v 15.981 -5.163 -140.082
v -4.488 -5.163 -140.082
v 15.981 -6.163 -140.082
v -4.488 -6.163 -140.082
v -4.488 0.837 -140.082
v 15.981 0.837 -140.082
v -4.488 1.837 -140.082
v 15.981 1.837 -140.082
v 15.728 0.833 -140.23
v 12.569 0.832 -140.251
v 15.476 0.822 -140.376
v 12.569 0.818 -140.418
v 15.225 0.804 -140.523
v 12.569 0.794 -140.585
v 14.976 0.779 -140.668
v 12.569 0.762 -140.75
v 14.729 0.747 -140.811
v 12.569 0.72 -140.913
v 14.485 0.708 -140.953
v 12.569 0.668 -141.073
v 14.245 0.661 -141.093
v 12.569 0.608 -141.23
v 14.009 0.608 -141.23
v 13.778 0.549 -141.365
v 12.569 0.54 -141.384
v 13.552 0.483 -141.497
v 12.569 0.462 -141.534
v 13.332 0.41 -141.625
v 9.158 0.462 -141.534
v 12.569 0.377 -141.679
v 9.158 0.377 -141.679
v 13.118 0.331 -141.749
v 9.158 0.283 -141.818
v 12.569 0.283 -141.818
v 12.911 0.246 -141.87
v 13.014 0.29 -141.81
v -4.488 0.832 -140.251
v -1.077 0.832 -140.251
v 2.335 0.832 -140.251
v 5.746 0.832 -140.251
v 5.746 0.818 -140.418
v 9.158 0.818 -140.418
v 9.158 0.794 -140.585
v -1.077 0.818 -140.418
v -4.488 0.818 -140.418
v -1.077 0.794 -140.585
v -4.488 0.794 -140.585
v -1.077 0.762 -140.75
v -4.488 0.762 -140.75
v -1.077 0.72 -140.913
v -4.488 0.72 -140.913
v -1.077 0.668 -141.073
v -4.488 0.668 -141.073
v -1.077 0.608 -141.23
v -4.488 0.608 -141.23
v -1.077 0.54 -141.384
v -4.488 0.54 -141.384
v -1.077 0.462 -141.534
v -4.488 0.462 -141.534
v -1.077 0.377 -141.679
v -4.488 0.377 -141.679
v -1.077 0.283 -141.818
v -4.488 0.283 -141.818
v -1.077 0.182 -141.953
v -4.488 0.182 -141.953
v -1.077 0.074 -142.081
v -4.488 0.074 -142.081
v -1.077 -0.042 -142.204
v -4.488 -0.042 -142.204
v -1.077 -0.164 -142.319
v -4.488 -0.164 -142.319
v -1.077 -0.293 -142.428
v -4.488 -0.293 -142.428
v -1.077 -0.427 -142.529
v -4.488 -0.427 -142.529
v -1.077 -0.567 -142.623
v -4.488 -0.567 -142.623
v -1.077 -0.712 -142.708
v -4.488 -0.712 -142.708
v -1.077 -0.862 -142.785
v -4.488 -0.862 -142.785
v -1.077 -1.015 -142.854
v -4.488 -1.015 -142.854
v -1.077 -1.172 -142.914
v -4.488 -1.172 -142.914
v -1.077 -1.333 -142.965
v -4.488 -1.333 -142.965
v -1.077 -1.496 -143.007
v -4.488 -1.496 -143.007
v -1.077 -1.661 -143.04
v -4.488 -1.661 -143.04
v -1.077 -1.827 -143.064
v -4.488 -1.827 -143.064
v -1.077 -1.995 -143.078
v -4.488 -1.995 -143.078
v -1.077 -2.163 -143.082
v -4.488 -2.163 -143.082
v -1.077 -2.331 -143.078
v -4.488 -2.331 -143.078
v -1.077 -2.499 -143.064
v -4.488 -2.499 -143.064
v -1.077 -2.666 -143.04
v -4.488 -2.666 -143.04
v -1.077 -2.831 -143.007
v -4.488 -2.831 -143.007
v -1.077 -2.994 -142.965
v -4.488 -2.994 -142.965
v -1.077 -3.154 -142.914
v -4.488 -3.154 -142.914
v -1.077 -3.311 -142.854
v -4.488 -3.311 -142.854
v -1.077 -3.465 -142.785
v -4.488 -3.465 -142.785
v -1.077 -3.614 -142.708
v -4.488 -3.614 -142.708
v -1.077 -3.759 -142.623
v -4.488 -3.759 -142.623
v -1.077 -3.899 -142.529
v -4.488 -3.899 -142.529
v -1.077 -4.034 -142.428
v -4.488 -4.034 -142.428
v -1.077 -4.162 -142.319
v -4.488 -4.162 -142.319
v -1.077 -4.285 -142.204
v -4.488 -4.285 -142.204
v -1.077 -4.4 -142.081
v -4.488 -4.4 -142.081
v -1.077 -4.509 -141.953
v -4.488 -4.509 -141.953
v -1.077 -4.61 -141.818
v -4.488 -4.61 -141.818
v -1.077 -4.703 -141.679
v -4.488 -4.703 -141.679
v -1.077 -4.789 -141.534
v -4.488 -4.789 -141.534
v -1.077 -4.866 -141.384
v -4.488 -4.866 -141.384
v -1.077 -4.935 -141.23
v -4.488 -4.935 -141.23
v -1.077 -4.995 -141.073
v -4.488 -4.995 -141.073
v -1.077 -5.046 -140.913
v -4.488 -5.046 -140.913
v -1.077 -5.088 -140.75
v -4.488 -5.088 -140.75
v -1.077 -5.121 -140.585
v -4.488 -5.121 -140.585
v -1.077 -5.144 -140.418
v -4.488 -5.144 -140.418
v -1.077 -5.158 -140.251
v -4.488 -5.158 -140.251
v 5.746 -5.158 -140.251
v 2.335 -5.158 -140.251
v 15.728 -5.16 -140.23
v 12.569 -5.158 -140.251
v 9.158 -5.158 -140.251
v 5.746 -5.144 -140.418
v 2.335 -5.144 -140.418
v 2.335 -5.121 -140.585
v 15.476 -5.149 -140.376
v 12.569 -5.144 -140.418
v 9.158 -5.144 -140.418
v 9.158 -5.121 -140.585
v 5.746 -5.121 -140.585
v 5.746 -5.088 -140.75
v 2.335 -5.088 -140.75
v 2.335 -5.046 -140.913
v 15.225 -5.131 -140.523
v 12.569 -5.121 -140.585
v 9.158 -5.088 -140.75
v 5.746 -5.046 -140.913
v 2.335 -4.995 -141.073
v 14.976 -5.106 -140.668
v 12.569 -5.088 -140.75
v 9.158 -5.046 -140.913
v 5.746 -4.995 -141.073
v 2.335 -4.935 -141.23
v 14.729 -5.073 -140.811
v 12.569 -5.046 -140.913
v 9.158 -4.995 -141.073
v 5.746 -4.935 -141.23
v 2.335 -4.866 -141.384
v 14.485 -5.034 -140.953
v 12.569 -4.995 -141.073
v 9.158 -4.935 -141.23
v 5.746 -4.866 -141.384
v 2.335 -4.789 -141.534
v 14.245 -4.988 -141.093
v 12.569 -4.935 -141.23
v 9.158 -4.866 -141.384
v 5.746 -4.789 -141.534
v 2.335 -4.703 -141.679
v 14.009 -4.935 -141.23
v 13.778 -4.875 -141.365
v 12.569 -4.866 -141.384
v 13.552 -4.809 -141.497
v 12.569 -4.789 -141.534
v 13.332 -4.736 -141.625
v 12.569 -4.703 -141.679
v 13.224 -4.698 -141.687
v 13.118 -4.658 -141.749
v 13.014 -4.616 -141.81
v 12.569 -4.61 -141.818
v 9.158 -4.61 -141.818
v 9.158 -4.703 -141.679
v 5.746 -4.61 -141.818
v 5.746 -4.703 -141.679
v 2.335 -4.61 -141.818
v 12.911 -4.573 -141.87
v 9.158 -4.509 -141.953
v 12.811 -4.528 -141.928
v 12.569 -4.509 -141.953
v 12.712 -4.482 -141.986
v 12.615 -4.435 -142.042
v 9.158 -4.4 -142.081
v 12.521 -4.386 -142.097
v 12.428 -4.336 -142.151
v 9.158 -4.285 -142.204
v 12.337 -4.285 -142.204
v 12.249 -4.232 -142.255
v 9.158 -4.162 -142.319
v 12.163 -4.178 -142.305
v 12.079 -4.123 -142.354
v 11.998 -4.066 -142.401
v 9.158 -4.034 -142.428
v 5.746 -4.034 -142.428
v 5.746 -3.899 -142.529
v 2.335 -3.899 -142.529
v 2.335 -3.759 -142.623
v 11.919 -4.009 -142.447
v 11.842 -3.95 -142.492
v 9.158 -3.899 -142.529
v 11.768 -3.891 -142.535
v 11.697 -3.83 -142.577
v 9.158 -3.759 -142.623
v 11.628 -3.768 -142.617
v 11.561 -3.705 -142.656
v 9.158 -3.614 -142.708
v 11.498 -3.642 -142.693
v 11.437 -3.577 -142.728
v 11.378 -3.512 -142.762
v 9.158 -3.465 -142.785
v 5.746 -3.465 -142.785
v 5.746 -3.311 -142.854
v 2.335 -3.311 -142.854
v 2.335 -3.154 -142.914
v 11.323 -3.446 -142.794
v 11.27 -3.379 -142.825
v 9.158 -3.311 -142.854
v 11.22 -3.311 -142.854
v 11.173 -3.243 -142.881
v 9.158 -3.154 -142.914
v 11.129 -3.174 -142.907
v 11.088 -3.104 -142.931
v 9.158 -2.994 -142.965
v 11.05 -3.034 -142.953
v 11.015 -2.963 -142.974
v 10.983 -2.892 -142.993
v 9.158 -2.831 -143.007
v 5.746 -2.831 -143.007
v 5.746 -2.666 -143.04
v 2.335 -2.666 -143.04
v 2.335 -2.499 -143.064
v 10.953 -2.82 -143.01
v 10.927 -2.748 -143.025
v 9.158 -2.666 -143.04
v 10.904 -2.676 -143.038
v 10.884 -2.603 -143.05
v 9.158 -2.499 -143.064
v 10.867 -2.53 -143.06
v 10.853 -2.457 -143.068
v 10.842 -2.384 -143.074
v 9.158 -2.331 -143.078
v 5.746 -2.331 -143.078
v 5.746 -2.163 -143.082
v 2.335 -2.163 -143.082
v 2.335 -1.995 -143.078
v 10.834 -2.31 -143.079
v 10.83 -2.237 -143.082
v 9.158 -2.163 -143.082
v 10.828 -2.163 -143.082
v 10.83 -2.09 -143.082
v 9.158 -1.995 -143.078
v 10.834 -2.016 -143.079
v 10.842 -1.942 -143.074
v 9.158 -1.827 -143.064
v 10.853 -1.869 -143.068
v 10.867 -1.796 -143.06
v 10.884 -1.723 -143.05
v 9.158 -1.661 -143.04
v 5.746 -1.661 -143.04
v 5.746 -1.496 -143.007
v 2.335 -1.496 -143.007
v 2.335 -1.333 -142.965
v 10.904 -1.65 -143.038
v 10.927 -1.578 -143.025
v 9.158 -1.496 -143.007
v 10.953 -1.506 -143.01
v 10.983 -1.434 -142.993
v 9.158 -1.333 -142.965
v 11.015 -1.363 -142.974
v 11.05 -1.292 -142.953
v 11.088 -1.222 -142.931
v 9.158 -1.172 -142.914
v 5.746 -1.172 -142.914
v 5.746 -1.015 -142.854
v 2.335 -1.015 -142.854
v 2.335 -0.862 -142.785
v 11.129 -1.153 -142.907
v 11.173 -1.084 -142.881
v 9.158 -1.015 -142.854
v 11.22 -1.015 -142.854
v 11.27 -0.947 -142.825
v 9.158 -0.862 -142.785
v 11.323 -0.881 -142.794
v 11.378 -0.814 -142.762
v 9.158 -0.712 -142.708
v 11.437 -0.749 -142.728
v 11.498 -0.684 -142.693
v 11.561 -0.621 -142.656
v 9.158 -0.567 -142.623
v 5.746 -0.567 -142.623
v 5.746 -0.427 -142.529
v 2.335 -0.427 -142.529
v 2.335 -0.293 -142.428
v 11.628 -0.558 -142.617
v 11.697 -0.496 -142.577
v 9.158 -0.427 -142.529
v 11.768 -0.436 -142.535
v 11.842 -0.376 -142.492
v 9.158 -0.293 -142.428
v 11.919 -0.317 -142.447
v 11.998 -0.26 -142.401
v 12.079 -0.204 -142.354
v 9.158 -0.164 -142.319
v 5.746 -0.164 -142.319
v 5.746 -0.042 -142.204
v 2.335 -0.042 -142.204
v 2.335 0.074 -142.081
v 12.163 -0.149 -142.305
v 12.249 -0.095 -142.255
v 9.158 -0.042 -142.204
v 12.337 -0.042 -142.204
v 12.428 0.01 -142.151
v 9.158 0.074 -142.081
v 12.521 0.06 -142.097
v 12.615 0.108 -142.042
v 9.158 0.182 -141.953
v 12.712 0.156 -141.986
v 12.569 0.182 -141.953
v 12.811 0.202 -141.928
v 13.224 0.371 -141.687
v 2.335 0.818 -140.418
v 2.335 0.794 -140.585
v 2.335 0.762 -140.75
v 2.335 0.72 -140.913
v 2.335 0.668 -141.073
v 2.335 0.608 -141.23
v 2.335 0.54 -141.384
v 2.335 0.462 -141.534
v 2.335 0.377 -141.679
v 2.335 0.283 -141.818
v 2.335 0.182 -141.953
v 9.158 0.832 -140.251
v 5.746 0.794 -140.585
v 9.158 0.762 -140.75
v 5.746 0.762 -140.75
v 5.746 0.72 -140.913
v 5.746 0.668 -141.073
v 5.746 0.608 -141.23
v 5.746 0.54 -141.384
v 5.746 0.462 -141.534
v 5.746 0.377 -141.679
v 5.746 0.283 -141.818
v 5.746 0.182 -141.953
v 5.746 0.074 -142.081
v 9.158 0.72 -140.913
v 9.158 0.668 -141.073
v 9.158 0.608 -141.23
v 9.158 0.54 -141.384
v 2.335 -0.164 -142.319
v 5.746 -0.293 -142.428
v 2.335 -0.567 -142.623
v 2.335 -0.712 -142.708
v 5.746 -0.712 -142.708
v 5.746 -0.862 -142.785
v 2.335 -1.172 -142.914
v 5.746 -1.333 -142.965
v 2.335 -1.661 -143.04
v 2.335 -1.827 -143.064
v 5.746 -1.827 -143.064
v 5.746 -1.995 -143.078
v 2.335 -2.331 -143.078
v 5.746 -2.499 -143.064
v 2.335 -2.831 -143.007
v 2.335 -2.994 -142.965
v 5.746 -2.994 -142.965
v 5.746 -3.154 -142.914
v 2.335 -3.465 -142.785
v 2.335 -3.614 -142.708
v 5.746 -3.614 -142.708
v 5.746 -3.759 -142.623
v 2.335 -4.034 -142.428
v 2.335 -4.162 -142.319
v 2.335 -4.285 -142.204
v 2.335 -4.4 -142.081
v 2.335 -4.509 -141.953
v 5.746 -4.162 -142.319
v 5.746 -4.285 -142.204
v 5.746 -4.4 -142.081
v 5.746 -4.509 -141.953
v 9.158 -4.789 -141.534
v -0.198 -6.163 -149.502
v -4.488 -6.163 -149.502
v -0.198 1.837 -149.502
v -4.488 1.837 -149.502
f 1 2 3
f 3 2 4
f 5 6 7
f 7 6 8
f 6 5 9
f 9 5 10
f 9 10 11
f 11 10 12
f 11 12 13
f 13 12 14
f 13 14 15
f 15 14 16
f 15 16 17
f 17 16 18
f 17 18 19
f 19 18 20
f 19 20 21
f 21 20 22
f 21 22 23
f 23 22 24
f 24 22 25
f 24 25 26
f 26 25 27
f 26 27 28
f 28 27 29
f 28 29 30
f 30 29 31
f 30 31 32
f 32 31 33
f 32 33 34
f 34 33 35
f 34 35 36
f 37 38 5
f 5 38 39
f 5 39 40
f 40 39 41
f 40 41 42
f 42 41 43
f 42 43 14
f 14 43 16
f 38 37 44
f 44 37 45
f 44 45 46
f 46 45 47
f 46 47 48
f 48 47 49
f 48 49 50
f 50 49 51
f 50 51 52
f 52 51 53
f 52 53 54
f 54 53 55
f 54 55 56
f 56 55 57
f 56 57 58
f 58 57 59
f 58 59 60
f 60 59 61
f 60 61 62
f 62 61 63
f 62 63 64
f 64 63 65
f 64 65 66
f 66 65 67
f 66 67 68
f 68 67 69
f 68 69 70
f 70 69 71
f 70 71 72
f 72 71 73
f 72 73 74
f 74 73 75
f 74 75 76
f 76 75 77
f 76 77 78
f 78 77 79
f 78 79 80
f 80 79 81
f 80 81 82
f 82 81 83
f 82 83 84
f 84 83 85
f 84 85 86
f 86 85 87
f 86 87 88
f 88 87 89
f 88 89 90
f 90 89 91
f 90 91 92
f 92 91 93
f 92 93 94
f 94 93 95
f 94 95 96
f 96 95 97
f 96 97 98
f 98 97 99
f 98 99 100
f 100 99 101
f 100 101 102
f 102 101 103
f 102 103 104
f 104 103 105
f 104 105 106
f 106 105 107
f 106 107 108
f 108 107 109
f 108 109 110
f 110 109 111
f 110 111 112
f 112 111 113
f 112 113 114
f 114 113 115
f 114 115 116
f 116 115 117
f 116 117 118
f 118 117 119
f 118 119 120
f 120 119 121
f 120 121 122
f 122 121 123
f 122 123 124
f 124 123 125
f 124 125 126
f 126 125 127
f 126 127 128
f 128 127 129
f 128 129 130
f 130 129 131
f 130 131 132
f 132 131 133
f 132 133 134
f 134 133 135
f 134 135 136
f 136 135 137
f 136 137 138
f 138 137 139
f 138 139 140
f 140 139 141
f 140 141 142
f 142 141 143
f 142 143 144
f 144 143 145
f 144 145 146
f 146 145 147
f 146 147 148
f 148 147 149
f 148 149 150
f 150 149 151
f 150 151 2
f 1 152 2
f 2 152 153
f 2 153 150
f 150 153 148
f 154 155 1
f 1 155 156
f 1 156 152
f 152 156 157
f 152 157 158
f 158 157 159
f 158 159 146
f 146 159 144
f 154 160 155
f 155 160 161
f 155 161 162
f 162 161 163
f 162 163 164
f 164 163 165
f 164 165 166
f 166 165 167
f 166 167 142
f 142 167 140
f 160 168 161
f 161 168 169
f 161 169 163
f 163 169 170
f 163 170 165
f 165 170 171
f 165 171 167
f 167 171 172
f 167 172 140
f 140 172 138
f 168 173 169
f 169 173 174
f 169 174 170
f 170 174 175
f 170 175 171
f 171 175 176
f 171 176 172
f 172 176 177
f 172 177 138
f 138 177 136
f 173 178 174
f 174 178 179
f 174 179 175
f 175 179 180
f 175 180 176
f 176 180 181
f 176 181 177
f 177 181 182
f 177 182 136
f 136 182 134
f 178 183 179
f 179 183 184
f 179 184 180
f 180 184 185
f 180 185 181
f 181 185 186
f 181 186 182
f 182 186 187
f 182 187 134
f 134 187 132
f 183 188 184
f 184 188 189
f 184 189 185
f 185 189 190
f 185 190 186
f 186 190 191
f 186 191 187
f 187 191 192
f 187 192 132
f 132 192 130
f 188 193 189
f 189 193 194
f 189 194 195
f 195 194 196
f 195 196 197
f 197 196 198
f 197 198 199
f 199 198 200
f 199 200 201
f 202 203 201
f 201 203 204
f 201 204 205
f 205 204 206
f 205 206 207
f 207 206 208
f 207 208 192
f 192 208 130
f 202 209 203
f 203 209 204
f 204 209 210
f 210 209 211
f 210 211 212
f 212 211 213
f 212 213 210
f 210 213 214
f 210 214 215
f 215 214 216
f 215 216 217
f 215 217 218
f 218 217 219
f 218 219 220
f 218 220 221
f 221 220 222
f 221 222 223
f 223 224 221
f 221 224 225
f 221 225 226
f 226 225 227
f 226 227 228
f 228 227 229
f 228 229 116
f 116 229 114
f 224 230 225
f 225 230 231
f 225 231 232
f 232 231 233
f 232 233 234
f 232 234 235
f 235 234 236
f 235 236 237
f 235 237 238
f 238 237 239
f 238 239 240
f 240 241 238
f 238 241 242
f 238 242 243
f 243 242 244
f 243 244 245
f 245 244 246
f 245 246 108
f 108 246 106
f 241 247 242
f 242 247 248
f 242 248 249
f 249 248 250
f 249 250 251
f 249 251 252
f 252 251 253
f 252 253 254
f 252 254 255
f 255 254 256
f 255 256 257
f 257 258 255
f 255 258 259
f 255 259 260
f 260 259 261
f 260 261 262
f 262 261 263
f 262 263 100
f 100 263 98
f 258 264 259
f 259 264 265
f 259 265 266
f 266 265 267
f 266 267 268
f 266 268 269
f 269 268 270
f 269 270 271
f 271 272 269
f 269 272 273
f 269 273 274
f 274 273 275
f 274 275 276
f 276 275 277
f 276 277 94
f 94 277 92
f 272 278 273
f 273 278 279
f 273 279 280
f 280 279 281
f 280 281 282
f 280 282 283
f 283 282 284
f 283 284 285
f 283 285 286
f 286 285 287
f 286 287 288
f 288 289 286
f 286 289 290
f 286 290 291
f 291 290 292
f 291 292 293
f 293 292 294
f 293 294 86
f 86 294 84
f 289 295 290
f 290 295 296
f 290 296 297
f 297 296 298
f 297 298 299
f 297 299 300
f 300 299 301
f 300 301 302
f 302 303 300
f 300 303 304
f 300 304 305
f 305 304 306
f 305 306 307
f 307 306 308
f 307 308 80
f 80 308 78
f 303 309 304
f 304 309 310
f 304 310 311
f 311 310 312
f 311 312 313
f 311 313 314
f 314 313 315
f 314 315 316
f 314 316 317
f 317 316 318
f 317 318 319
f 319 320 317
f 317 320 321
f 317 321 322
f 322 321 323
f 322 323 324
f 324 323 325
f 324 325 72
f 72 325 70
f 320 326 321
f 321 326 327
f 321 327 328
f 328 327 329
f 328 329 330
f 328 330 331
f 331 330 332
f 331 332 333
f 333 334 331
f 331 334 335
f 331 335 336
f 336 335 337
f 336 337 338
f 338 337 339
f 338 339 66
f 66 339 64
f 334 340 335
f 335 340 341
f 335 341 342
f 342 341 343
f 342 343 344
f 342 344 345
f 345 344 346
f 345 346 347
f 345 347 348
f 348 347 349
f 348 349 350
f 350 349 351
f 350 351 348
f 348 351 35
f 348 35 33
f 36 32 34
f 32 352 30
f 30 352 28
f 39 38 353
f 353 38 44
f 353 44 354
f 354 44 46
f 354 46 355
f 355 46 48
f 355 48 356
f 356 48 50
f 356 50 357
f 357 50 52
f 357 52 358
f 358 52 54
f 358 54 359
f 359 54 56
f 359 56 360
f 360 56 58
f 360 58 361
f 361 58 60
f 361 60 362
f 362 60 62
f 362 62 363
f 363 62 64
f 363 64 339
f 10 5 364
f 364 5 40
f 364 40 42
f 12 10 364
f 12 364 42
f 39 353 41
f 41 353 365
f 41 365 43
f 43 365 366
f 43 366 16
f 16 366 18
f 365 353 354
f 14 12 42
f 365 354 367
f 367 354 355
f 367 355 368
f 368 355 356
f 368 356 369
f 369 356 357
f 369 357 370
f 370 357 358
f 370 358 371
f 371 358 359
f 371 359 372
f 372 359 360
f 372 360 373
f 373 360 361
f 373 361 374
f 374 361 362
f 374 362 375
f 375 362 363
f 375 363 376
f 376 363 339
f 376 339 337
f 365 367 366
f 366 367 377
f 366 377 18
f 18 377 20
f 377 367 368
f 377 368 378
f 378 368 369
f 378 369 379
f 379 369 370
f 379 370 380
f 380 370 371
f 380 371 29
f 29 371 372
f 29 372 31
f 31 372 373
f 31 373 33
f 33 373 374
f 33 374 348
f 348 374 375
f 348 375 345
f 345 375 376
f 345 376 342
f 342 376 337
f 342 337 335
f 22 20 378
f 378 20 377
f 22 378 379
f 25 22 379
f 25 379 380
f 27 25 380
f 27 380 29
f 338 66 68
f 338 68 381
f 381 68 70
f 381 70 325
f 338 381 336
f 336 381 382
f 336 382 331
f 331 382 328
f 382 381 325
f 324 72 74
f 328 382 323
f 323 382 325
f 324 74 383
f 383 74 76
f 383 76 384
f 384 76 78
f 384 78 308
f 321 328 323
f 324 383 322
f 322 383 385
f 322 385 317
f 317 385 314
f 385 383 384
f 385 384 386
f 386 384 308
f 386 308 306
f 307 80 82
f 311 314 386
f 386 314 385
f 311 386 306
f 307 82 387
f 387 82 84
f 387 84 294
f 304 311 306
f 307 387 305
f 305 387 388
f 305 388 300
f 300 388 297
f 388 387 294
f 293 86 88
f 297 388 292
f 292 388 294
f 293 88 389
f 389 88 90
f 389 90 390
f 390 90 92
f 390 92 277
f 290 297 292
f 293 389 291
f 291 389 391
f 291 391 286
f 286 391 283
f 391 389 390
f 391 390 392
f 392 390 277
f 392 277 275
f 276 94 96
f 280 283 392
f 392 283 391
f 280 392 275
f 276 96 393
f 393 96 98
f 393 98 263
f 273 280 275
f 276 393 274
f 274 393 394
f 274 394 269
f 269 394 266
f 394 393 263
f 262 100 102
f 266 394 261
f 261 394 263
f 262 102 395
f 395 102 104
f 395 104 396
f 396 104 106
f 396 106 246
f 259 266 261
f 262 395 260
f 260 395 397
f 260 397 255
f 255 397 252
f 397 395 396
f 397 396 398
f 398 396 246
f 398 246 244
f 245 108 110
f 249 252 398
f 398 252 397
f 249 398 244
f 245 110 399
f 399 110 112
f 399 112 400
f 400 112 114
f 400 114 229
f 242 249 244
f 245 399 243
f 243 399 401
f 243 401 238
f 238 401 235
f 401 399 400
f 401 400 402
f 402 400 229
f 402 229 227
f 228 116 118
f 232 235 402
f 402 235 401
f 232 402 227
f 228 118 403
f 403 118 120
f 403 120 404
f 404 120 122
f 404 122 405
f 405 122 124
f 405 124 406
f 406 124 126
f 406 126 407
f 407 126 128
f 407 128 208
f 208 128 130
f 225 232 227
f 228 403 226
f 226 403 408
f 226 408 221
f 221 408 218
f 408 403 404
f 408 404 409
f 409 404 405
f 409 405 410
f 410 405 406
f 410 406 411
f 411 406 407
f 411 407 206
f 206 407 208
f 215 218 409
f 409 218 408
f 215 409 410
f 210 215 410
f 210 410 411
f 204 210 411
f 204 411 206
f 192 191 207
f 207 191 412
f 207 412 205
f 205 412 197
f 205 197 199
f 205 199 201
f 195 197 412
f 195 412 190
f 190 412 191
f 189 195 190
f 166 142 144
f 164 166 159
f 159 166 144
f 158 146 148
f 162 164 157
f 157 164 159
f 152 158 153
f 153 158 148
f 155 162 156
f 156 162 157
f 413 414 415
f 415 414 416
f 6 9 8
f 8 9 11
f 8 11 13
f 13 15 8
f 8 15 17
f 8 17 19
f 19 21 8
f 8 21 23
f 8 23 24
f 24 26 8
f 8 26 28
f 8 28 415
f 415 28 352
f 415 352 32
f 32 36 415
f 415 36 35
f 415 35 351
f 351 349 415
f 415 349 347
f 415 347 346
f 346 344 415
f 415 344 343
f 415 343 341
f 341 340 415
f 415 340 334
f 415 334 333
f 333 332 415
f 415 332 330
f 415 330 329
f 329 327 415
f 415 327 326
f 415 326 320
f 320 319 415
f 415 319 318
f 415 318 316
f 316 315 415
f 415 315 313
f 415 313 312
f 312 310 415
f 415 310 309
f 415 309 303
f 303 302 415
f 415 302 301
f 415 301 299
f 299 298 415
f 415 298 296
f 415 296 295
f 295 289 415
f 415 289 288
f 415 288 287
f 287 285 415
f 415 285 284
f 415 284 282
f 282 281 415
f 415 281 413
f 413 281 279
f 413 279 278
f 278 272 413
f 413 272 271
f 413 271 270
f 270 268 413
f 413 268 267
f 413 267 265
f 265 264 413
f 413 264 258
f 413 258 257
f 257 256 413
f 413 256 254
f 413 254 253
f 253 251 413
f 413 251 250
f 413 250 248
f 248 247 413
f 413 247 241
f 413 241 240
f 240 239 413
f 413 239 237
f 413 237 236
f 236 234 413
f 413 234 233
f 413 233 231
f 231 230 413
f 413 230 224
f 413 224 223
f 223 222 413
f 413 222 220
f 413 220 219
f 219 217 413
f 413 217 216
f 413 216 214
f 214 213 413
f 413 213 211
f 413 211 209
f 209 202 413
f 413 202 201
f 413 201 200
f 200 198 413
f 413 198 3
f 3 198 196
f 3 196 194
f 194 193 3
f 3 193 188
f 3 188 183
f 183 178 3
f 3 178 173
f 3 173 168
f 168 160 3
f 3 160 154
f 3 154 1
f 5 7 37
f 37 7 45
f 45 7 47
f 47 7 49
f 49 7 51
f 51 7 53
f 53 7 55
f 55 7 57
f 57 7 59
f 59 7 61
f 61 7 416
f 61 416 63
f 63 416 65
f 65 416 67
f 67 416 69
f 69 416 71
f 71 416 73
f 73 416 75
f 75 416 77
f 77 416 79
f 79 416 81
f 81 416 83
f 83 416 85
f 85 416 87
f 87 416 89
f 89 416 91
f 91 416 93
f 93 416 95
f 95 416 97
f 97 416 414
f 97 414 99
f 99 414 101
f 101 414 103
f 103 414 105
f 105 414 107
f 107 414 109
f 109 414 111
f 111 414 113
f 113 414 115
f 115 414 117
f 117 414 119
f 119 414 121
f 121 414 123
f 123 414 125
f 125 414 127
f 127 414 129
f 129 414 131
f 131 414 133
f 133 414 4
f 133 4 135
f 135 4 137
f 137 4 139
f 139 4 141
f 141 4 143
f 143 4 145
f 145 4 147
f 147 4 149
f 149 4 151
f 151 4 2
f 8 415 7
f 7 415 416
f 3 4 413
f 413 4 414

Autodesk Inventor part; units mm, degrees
ref_plane "YZ Plane" through (0, 0, 0) normal (1, 0, 0) x (0, 1, 0)
ref_plane "XZ Plane" through (0, 0, 0) normal (0, 1, 0) x (-1, 0, 0)
ref_plane "XY Plane" through (0, 0, 0) normal (0, 0, 1) x (1, 0, 0)
ref_plane "Work Plane1" through (-6.4883, -6.1632, -131.5017) normal (0, 1, 0) x (-1, 0, 0)
sketch "Sketch1" plane through (-6.4883, -6.1632, -131.5017) normal (0, 1, 0) x (-1, 0, 0)
  line L0 (-2, -18) -> (-2, 0) projected
  line L1 (-2, 0) -> (-7.4816, 0) projected
  line L2 (-22.4693, -8.5807) -> (-7.4816, 0) projected
  line L3 (-6.2906, -18) -> (-22.4693, -8.5807) projected
  line L4 (-2, -18) -> (-6.2906, -18) projected
  point P0 (-6.4883, 131.5017)
extrude "Extrusion1" add sketch "Sketch1" along normal blind 8
sketch "Sketch2" plane through (0, 0, 0) normal (1, 0, 0) x (0, 1, 0)
  line L0 (-6.1632, -140.0824) -> (1.8368, -140.0824) projected
  circle A0 centre (-2.1632, -140.0824) radius 3
  point P0 (0, 0)
  dimension "d2" = 6
extrude "Extrusion2" cut sketch "Sketch2" along normal through all both and the other way through all
sketch "Sketch3" plane through (-6.4883, 1.8368, -131.5017) normal (0, 1, 0) x (1, 0, 0)
  line L0 (2, 18) -> (2, 0) projected
  line L1 (17.3164, 11.5807) -> (22.4693, 8.5807) projected
  line L2 (2, 0) -> (22.4693, 0)
  line L3 (22.4693, 0) -> (22.4693, 8.5807)
  line L4 (22.4693, 8.5807) -> (2, 8.5807)
  line L5 (2, 8.5807) -> (2, 0)
  point P0 (6.4883, -131.5017)
extrude "Extrusion3" cut sketch "Sketch3" against normal through all
properties part number "Wire_Clossing"
